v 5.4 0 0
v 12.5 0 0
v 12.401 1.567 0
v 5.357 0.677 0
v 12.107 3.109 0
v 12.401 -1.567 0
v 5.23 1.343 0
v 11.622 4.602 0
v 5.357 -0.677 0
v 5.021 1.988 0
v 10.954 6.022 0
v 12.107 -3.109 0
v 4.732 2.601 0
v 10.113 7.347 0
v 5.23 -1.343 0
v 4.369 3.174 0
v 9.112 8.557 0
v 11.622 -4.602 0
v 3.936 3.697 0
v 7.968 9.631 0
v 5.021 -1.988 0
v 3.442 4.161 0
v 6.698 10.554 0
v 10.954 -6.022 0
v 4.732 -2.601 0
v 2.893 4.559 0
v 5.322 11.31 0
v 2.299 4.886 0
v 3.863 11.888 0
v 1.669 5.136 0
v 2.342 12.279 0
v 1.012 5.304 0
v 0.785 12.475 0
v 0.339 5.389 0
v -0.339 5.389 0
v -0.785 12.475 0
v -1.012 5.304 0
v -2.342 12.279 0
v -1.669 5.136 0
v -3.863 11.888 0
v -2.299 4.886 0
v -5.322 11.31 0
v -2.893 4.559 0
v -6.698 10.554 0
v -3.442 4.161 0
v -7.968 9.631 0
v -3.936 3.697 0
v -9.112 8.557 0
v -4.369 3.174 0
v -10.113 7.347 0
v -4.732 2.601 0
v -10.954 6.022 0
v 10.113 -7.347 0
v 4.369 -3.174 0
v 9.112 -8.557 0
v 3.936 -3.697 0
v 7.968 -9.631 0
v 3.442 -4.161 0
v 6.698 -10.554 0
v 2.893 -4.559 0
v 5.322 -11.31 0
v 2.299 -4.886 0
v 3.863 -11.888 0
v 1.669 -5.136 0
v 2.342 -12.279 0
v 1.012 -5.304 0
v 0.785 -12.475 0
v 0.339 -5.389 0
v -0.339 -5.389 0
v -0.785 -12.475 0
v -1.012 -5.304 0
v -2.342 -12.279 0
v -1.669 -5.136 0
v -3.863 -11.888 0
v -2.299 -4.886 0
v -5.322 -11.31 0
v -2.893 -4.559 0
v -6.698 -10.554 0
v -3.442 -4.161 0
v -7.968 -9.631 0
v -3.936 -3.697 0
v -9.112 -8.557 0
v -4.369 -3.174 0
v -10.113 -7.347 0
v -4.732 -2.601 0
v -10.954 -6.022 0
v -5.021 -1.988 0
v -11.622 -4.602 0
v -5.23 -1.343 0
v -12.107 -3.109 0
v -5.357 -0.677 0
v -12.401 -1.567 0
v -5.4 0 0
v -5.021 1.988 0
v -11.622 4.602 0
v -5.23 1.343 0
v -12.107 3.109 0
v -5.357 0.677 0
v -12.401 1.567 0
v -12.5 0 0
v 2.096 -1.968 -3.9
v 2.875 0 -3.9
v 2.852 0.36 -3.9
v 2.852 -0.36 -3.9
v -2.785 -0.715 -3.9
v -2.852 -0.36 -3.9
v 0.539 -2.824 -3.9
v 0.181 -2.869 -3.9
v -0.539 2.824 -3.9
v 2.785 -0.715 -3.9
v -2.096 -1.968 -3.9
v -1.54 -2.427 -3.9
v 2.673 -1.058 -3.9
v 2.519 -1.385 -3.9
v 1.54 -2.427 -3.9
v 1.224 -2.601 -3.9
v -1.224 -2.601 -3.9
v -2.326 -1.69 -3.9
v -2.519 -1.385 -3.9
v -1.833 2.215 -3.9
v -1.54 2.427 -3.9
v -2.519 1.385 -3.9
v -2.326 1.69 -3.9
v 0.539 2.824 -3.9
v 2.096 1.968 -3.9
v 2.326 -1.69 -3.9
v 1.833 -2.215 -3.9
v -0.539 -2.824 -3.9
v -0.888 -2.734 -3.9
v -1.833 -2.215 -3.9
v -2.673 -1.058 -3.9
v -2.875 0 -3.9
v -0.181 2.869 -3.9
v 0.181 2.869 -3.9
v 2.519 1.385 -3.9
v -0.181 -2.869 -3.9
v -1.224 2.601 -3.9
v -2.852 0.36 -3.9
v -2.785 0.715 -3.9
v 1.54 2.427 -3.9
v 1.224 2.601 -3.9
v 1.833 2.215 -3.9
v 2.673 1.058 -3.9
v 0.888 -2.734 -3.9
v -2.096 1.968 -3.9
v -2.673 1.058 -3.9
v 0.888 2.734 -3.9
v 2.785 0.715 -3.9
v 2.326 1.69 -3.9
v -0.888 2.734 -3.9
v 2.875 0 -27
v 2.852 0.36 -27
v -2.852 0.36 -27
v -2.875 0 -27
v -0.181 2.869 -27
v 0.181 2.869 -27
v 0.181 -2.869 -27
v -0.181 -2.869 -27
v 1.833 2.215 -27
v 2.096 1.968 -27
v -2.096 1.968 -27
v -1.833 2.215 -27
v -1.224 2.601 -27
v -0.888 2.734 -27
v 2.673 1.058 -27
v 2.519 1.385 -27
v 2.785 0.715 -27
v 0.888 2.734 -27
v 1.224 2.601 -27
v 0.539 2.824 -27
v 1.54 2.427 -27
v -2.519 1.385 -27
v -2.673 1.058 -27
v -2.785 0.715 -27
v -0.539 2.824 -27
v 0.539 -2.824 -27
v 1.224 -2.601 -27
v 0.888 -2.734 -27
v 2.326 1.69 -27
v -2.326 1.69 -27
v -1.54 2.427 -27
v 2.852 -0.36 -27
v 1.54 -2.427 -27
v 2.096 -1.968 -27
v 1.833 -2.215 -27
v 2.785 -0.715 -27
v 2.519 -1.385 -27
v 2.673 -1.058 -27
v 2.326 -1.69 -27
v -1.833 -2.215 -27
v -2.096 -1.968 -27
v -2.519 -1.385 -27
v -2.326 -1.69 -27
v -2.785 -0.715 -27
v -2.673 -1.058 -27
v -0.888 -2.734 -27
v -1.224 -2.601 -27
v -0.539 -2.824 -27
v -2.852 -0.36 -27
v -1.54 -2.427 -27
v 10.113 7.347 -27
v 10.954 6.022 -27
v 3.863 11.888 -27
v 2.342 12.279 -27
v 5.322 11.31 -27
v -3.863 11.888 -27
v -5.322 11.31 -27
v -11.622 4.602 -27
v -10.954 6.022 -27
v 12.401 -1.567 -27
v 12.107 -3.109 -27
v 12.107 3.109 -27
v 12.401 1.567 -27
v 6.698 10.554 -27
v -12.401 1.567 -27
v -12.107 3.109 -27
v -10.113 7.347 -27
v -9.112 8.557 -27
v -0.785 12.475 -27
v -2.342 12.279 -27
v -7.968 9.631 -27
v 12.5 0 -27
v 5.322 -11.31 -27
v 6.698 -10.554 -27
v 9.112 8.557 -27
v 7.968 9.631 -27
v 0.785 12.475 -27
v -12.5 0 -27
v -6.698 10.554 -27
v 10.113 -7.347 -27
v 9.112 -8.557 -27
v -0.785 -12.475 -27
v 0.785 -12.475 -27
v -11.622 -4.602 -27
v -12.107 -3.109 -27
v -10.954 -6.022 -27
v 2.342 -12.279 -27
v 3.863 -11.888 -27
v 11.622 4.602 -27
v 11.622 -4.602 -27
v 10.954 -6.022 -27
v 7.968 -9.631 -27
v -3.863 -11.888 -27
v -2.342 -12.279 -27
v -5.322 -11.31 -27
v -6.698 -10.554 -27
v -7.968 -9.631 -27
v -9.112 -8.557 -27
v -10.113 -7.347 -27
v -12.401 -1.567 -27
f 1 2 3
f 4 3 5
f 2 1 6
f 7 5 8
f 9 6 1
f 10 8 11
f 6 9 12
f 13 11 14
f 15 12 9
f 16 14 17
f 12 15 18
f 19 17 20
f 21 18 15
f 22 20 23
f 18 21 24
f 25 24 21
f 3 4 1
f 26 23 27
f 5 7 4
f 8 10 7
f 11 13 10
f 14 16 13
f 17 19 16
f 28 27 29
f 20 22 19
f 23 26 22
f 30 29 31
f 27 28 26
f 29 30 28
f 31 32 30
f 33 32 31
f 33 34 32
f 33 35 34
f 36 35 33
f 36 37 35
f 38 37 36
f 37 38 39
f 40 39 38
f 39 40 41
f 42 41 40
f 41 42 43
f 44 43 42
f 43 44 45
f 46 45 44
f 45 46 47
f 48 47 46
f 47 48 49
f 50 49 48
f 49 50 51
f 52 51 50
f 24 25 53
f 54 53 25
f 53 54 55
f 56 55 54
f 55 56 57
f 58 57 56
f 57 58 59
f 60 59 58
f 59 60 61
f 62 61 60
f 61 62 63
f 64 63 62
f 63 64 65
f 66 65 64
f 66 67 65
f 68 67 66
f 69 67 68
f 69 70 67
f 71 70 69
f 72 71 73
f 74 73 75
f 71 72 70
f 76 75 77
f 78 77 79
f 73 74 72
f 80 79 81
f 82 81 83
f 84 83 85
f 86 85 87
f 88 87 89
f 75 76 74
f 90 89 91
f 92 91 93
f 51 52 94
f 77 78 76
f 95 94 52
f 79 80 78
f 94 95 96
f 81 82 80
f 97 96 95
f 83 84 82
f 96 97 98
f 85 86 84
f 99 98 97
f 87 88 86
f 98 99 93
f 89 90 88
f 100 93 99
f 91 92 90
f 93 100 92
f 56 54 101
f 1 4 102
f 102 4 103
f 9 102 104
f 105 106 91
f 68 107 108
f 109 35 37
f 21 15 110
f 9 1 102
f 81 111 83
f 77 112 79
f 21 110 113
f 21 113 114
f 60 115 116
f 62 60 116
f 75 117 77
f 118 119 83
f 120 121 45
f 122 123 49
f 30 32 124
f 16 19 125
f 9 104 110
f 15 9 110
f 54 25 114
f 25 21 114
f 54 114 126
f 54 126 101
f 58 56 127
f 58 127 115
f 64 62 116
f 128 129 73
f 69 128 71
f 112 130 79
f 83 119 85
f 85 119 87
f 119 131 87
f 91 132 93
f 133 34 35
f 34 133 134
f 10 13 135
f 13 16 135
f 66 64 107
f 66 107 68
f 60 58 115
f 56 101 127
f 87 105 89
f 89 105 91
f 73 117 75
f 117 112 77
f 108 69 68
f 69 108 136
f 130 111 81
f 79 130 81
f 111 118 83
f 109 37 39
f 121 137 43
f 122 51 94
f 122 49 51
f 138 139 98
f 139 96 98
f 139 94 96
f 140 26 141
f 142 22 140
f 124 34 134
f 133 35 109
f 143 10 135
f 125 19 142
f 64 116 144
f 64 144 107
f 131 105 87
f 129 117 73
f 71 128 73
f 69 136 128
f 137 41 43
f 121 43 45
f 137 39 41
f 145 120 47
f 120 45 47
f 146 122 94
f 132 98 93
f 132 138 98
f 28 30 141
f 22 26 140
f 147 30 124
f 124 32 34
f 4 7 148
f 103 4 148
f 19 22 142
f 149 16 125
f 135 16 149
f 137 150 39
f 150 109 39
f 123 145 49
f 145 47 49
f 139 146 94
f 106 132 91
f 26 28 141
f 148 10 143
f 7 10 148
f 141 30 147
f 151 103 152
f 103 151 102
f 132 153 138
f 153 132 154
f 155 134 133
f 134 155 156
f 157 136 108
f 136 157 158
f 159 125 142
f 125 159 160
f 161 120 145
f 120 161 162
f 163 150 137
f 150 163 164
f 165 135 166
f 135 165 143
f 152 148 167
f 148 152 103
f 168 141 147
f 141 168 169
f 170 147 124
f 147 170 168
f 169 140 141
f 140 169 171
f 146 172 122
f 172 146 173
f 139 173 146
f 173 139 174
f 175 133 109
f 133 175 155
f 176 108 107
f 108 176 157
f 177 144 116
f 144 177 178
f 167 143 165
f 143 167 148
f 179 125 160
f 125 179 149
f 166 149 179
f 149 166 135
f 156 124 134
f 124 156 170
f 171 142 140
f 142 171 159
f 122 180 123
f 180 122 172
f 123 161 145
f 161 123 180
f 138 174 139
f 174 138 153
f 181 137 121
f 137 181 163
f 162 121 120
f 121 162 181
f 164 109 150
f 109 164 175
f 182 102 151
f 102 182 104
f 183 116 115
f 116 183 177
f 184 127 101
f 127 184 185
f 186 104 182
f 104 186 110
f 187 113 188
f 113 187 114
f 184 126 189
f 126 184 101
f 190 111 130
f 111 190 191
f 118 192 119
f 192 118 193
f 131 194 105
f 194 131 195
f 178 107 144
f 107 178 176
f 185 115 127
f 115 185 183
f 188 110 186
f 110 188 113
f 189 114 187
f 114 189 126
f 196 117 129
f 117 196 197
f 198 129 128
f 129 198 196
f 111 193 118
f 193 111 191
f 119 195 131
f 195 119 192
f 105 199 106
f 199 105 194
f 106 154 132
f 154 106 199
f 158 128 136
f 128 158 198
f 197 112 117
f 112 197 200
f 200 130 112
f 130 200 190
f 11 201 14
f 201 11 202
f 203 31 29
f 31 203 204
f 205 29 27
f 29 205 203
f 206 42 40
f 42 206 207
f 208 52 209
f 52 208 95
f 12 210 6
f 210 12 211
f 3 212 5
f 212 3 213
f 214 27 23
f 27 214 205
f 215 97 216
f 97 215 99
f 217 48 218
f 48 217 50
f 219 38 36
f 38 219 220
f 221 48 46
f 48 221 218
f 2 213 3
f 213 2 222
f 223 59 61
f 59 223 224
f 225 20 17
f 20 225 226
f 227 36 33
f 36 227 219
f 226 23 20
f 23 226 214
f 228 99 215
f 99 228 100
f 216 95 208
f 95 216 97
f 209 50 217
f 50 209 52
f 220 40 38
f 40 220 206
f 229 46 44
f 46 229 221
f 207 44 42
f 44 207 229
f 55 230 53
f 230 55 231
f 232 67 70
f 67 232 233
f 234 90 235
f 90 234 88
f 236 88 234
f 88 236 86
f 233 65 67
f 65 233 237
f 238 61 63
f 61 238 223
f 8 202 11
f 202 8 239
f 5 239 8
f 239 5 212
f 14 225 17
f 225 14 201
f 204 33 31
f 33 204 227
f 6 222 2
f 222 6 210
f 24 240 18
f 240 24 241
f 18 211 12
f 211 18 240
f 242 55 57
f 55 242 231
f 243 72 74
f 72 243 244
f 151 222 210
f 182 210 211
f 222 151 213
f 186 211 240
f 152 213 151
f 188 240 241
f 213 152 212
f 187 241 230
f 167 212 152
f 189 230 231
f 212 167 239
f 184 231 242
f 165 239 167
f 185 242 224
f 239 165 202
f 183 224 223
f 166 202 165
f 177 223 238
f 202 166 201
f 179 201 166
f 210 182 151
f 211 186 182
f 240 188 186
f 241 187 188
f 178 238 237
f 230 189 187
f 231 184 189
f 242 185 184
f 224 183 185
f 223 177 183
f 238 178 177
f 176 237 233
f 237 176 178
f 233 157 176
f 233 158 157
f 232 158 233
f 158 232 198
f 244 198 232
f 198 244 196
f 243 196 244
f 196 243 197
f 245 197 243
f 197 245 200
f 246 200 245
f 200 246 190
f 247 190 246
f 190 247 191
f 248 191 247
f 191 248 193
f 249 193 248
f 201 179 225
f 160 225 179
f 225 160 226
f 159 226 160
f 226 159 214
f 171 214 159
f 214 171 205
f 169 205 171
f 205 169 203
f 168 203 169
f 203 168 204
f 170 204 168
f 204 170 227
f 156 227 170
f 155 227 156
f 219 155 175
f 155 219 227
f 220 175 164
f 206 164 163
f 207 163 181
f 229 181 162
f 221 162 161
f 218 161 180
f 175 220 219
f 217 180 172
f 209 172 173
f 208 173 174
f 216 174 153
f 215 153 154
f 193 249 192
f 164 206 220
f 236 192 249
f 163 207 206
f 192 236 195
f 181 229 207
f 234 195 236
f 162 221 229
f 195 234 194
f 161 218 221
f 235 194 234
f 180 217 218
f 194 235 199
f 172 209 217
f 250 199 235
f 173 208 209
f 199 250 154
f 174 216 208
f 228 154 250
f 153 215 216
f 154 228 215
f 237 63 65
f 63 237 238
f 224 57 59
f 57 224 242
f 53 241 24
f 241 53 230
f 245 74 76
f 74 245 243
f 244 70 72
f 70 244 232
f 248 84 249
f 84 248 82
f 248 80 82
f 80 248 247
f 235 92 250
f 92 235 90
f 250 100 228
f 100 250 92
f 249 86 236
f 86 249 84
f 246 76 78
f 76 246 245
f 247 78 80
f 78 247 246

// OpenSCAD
$fn = 50;

difference() {
	union() {
		translate(v = [0, 0, -27.0]) {
			cylinder(h = 27, r = 12.5);
		}
	}
	union() {
		translate(v = [0, 0, 0]) {
			rotate(a = [0, 0, 0]) {
				difference() {
					union() {
						translate(v = [0, 0, -30.0]) {
							cylinder(h = 30, r = 2.6);
						}
						translate(v = [0, 0, -3.9]) {
							cylinder(h = 3.9, r1 = 2.875, r2 = 5.4);
						}
						translate(v = [0, 0, -30.0]) {
							cylinder(h = 30, r = 2.875);
						}
						translate(v = [0, 0, -30.0]) {
							cylinder(h = 30, r = 2.6);
						}
					}
					union();
				}
			}
		}
	}
}
